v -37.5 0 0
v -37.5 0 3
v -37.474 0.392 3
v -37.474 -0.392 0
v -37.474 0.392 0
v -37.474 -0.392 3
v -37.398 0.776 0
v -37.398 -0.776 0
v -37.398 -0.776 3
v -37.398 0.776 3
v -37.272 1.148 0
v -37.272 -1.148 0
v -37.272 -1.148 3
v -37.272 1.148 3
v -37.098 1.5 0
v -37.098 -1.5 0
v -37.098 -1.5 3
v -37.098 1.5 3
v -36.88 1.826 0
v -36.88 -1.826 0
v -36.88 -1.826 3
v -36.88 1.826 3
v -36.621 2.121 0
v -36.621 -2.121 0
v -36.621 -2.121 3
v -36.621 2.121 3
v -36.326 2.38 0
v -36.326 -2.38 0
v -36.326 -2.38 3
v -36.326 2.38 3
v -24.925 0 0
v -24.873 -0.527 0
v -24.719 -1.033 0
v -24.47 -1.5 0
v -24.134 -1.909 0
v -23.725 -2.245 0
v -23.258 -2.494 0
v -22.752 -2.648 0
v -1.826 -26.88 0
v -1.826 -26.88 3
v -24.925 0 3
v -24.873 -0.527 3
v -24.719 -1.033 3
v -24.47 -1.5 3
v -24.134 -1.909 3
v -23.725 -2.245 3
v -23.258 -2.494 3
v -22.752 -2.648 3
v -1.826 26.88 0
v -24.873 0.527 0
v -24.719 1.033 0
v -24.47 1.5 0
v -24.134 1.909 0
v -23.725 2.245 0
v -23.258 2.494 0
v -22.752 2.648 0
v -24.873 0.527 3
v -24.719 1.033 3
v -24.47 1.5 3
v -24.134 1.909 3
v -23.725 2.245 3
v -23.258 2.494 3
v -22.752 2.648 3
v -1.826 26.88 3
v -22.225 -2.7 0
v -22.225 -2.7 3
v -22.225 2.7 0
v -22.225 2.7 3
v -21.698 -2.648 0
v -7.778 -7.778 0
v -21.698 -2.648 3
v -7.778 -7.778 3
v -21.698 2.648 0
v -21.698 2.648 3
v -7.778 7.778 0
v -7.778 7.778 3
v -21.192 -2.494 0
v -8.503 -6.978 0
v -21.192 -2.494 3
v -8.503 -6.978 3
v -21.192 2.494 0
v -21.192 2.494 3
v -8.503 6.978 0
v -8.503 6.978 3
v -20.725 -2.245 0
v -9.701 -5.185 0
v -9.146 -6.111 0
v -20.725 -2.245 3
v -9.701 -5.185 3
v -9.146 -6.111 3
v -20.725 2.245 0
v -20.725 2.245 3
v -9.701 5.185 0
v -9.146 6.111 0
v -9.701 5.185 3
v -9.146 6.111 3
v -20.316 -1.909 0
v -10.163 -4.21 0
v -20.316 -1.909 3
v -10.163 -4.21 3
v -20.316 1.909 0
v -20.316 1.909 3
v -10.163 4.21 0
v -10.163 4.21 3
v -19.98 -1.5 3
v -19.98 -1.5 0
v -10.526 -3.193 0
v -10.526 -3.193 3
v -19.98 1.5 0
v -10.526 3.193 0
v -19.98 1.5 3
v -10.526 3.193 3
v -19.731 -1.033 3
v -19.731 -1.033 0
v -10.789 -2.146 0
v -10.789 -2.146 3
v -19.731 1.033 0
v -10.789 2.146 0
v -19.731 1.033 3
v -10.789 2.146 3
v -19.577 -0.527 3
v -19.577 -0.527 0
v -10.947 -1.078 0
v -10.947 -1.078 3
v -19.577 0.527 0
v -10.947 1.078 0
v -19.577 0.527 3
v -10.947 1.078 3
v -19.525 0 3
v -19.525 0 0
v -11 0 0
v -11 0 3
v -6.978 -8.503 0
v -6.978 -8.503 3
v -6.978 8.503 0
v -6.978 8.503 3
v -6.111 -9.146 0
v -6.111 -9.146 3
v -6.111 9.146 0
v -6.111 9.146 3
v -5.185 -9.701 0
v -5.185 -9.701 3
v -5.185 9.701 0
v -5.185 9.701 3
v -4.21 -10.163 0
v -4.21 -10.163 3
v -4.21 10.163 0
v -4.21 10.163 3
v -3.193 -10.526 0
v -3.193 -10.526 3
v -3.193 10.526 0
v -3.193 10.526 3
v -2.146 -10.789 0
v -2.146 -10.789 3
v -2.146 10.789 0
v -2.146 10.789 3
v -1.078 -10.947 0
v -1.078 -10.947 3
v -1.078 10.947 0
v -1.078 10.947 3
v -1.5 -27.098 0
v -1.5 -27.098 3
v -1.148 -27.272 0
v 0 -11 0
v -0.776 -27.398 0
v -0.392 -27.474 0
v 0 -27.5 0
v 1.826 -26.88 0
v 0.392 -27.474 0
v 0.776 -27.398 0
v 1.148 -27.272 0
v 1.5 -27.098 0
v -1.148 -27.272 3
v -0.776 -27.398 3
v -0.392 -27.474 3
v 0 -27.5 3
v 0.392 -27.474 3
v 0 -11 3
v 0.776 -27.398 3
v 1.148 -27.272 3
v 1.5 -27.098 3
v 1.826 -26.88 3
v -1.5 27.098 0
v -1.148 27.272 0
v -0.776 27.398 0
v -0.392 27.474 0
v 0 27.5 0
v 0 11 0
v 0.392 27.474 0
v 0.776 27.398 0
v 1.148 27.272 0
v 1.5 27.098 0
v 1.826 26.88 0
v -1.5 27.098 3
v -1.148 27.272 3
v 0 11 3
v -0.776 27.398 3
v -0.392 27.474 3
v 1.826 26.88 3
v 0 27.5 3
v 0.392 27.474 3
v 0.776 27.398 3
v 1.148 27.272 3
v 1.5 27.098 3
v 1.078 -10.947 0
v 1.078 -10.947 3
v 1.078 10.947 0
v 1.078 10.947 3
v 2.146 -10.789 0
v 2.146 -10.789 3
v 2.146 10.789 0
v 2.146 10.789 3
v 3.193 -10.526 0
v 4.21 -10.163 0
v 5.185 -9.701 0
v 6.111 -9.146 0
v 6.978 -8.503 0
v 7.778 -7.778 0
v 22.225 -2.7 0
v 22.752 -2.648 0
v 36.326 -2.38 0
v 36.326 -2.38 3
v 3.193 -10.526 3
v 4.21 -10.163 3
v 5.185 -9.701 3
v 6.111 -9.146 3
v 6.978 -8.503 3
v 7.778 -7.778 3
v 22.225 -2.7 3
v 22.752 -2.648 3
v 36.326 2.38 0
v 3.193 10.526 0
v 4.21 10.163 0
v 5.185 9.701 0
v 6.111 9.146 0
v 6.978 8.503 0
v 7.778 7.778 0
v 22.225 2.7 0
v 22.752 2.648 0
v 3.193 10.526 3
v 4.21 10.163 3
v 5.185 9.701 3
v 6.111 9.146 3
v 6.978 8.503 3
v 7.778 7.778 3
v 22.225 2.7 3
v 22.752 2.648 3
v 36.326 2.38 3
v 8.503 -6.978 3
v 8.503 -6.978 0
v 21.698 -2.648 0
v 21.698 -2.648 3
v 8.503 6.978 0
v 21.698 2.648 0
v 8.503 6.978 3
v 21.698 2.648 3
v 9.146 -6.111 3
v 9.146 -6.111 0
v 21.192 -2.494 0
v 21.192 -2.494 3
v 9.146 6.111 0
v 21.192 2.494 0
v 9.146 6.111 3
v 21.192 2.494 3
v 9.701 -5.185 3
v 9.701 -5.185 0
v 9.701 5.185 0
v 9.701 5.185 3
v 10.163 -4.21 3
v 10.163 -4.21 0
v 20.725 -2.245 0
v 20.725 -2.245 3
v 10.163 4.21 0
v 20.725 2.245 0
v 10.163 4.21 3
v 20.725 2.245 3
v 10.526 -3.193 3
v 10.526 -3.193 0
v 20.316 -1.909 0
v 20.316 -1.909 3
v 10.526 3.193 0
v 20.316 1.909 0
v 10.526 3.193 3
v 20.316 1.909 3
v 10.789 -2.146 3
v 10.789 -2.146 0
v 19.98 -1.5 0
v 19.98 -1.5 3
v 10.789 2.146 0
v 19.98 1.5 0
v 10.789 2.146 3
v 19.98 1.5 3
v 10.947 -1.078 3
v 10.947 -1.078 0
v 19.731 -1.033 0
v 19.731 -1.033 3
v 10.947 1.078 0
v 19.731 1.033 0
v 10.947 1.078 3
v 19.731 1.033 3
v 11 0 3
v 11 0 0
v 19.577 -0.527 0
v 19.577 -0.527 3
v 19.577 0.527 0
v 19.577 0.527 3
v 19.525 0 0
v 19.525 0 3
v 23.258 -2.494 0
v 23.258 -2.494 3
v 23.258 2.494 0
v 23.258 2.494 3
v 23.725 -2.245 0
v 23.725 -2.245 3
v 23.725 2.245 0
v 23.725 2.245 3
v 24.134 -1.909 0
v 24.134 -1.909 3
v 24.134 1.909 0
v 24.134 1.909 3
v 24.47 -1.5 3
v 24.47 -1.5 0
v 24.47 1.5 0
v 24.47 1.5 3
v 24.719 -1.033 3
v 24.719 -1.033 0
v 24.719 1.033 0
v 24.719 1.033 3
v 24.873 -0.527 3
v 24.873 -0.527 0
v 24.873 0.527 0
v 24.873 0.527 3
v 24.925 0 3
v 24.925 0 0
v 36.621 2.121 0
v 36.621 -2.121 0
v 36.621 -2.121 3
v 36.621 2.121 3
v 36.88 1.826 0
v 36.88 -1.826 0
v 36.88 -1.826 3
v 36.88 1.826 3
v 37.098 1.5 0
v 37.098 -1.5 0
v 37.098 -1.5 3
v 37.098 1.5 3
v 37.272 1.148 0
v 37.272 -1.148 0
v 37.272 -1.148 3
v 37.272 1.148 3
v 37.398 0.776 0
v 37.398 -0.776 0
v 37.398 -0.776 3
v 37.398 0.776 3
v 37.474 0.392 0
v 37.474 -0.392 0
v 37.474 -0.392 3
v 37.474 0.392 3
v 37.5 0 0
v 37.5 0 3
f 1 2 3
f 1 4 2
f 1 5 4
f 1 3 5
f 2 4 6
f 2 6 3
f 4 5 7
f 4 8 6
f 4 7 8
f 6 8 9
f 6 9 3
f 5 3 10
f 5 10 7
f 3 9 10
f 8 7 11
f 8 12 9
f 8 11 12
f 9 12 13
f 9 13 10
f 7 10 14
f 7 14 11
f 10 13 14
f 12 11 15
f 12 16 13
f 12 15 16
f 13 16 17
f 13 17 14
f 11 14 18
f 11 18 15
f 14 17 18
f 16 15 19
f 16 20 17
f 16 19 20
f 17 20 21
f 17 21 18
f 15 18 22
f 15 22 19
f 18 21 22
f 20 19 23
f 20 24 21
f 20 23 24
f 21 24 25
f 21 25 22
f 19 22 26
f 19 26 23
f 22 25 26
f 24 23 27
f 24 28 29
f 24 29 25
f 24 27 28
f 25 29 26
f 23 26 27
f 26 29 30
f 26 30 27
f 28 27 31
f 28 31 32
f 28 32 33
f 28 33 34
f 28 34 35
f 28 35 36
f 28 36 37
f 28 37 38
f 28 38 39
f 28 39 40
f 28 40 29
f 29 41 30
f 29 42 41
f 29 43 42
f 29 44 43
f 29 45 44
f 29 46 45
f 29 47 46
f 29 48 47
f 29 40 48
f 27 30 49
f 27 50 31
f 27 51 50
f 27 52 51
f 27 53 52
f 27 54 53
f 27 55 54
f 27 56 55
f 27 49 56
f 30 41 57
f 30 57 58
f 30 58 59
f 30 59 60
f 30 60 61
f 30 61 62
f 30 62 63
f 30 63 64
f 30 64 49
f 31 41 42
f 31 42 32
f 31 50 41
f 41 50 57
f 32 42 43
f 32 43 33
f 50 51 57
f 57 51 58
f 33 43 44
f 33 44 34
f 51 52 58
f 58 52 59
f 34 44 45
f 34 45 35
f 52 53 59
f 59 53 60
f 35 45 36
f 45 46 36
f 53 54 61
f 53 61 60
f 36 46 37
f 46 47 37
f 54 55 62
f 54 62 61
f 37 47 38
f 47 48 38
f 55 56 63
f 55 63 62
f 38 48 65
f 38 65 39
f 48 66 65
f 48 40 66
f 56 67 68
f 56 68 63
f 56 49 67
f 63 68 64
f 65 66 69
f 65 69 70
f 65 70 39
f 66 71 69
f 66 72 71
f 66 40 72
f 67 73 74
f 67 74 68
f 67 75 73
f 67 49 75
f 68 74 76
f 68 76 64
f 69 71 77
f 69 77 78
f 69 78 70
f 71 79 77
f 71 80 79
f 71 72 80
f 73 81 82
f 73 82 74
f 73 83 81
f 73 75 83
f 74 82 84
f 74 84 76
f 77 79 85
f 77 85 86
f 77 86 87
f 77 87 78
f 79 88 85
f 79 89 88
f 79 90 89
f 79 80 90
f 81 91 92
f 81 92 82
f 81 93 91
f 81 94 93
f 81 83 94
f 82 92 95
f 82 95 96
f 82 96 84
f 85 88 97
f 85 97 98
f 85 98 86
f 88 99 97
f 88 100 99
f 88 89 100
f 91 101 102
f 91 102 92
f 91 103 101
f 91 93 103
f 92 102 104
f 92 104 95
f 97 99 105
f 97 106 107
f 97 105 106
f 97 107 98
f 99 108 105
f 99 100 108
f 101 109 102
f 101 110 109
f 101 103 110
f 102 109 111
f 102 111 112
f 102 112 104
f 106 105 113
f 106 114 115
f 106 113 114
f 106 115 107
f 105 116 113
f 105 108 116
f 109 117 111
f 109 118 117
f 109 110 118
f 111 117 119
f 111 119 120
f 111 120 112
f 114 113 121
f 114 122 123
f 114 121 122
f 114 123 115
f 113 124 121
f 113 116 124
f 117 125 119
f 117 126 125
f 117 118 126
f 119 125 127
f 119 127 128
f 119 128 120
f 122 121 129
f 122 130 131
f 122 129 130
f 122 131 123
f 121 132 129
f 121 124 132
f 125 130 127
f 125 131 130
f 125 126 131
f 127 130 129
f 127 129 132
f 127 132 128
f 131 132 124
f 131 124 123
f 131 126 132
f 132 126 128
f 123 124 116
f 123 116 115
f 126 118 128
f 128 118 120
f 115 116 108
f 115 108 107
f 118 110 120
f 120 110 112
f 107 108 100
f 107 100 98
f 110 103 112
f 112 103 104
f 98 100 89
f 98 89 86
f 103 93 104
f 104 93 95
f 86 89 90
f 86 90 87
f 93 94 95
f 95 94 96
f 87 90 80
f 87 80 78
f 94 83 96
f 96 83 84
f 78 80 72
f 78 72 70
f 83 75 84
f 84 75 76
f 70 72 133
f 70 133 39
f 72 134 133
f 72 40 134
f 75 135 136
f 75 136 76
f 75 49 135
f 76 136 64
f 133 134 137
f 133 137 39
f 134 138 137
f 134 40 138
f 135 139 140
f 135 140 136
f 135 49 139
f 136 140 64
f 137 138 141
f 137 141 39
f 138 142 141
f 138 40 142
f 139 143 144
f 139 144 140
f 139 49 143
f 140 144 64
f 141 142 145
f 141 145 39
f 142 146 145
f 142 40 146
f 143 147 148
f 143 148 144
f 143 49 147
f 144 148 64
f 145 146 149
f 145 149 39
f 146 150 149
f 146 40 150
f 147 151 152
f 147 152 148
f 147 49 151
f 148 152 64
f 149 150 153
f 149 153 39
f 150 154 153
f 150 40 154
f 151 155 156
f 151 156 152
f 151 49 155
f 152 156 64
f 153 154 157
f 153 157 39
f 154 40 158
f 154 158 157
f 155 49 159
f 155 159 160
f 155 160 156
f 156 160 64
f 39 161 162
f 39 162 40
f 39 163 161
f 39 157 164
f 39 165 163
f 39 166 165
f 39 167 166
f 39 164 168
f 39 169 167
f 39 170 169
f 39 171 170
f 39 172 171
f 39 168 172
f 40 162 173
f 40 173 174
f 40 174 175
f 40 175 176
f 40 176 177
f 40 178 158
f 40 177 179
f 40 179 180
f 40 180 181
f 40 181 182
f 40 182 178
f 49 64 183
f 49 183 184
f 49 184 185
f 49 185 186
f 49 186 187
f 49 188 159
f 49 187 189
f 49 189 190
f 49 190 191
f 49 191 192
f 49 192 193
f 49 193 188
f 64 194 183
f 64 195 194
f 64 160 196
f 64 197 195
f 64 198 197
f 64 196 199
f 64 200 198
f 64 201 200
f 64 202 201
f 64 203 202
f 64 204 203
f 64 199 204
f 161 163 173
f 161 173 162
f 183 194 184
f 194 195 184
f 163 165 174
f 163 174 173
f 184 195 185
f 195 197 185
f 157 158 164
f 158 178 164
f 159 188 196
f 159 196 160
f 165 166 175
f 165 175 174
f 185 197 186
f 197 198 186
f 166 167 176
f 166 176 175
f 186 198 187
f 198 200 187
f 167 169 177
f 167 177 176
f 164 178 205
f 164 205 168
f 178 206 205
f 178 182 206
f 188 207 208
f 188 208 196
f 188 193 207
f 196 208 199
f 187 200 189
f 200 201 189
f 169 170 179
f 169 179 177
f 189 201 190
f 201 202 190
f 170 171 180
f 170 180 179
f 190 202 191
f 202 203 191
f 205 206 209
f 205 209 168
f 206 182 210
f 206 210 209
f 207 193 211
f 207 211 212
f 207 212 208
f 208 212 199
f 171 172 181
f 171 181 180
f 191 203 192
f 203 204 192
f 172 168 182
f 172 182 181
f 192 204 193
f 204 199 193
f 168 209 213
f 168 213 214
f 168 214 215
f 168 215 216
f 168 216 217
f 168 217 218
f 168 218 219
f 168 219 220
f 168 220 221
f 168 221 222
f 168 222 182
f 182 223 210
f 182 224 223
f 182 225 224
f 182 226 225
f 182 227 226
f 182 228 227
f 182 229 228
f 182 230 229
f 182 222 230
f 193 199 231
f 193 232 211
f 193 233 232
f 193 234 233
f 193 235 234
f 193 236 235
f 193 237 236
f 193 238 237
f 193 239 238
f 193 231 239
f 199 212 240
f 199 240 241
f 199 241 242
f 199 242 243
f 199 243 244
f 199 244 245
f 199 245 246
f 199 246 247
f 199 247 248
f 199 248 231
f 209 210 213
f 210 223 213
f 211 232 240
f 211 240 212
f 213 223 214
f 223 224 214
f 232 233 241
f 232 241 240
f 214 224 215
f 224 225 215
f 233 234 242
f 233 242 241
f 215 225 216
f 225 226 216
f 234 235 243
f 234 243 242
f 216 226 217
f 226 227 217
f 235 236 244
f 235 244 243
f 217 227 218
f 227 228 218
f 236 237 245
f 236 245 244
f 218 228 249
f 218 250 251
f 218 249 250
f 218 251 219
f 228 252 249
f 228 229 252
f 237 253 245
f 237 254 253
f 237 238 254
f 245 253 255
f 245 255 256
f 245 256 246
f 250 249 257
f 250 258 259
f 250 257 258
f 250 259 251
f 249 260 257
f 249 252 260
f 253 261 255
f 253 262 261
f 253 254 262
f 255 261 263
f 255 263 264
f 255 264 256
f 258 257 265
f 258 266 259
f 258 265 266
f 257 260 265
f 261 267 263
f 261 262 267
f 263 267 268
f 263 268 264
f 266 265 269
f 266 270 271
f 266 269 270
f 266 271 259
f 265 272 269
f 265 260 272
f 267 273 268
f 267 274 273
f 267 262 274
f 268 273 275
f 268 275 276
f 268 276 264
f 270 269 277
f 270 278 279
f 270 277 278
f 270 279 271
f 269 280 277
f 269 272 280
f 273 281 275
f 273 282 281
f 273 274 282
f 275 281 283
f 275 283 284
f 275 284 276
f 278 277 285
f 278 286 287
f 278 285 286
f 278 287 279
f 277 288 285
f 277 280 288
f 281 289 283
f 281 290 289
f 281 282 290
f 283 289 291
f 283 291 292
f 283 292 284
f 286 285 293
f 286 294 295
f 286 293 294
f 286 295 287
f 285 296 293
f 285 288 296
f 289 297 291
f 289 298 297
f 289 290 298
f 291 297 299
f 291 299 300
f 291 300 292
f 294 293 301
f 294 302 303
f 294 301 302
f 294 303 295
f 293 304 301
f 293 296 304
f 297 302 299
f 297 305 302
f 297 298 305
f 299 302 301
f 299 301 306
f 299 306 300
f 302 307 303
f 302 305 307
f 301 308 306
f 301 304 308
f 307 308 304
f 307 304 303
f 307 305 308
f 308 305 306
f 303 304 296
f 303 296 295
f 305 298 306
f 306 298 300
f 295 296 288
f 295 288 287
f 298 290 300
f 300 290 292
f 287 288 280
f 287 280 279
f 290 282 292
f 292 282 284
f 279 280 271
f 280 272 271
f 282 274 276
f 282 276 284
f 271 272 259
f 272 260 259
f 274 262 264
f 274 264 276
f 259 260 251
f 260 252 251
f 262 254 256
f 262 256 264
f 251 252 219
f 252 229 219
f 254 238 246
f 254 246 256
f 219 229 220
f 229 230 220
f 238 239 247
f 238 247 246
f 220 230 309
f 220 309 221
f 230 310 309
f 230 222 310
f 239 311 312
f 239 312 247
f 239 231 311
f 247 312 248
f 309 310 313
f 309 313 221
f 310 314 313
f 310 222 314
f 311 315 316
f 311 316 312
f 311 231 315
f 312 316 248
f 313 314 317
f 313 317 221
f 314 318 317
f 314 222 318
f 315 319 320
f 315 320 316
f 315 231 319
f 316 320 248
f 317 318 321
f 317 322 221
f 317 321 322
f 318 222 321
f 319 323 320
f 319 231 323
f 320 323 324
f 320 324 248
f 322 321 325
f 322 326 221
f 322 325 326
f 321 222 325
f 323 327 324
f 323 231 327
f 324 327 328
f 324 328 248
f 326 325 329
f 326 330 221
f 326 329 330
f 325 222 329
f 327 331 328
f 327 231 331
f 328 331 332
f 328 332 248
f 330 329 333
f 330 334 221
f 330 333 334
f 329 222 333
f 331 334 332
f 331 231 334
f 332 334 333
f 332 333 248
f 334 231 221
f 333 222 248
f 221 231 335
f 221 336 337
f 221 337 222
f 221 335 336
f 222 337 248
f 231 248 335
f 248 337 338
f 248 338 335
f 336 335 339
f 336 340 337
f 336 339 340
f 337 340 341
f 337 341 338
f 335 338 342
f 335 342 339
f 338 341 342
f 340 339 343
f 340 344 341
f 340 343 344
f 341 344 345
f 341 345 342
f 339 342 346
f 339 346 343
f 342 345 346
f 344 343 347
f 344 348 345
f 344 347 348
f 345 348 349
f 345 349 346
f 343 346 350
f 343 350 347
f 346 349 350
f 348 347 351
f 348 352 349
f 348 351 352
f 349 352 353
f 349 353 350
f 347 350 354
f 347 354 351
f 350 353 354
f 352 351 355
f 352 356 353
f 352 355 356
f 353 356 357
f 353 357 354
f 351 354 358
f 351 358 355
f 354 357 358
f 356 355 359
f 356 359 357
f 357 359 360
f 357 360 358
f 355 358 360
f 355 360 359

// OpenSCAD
// Superwinch Adapter Plate
// Diamond-shaped with rounded points, 5mm thick
// Three holes along major (X) axis

thickness       = 3;
major_axis      = 75;     // tip-to-tip along X
minor_axis      = 55;     // tip-to-tip along Y
point_radius    = 3;      // radius of curvature at each point

center_hole_d   = 22;     // center hole diameter
screw_hole_d    = 5.4;    // screw hole diameter
screw_spacing   = 44.45;  // screw hole center-to-center

// Hull circle centers are inset from the tips by point_radius
// so the outer extents remain exactly major_axis × minor_axis
major_half = major_axis / 2 - point_radius;  // 27 mm
minor_half = minor_axis / 2 - point_radius;  // 17 mm

module adapter_plate() {
    difference() {
        // Diamond body — hull of four rounded tips
        linear_extrude(height = thickness)
            hull() {
                translate([ major_half,  0]) circle(r = point_radius, $fn = 48);
                translate([-major_half,  0]) circle(r = point_radius, $fn = 48);
                translate([0,  minor_half]) circle(r = point_radius, $fn = 48);
                translate([0, -minor_half]) circle(r = point_radius, $fn = 48);
            }

        // Center hole (Ø22 mm)
        translate([0, 0, -0.5])
            cylinder(d = center_hole_d, h = thickness + 1, $fn = 64);

        // Screw holes (Ø5.4 mm), ±22.225 mm from center along X
        screw_x = screw_spacing / 2;
        for (sx = [-screw_x, screw_x])
            translate([sx, 0, -0.5])
                cylinder(d = screw_hole_d, h = thickness + 1, $fn = 32);
    }
}

    adapter_plate();

// For 2D PDF part printing
// projection(cut = false) adapter_plate();
